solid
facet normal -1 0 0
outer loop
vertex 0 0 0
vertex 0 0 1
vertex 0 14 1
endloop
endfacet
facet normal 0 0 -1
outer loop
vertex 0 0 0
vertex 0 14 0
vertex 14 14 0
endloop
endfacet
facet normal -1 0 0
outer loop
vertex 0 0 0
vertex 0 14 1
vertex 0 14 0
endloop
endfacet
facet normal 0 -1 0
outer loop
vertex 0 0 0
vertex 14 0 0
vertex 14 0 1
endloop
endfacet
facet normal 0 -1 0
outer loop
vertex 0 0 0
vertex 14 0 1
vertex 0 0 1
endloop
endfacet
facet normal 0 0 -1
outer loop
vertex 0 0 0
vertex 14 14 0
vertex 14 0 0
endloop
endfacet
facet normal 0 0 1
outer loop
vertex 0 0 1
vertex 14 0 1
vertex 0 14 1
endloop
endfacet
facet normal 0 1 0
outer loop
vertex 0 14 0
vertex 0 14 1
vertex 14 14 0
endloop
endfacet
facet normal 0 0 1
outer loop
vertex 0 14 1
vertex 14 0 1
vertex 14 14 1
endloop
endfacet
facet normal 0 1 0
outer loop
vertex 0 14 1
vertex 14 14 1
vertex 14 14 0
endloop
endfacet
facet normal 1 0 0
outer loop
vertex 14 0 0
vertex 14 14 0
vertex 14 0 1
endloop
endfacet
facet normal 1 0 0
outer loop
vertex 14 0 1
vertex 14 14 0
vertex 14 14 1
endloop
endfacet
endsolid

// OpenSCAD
/* Warning, this is a very basic generator with a lot of approximation 
input data : [TQFP, 4SB, 14x14x1mm, 100, , A, C04-21553A]
generated by com.zoubworld.electronics.cad.model3d.Basic
Date : Sun Feb 15 10:50:49 CET 2026
*/

//body
color("black")
translate([0,0,0])
cube([14.0,14.0,1.0], center=false);
